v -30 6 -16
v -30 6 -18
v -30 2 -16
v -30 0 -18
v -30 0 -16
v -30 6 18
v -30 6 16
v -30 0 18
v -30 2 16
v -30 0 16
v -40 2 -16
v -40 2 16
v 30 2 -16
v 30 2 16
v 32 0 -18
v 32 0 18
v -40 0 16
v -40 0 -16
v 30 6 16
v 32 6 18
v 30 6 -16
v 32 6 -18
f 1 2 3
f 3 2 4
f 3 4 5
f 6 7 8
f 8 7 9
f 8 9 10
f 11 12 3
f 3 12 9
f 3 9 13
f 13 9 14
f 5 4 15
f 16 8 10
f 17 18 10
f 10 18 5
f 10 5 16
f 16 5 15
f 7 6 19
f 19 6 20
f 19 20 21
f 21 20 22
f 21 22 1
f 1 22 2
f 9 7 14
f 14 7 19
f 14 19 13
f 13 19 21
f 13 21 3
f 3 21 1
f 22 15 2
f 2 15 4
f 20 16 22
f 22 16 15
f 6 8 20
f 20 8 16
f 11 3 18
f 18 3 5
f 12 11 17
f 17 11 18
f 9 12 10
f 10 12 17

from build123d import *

# Parameters (mm, degrees)
SKETCH1_W           = 60
SKETCH1_H           = 32
BOSS_EXTRUDE1_DEPTH = 2
BOSS_EXTRUDE2_DEPTH = 6
SKETCH3_W           = 10
SKETCH3_H           = 32
BOSS_EXTRUDE3_DEPTH = 2


with BuildPart() as part:
    # Sketch1 → Boss-Extrude1 (new body)
    with BuildSketch(Plane(origin=(0, 0, 0), x_dir=(1, 0, 0), z_dir=(0, 1, 0))):
        Rectangle(SKETCH1_W, SKETCH1_H)
    extrude(amount=BOSS_EXTRUDE1_DEPTH)

    # Sketch2 → Boss-Extrude2 (add)
    with BuildSketch(Plane.XZ):
        Polygon((-30, -18), (32, -18), (32, 18), (-30, 18), (-30, 16), (30, 16), (30, -16), (-30, -16), align=None)
    extrude(amount=-BOSS_EXTRUDE2_DEPTH)

    # Sketch3 → Boss-Extrude3 (add)
    with BuildSketch(Plane.XZ):
        with Locations((-35, 0)):
            Rectangle(SKETCH3_W, SKETCH3_H)
    extrude(amount=-BOSS_EXTRUDE3_DEPTH)


solid = part.part
